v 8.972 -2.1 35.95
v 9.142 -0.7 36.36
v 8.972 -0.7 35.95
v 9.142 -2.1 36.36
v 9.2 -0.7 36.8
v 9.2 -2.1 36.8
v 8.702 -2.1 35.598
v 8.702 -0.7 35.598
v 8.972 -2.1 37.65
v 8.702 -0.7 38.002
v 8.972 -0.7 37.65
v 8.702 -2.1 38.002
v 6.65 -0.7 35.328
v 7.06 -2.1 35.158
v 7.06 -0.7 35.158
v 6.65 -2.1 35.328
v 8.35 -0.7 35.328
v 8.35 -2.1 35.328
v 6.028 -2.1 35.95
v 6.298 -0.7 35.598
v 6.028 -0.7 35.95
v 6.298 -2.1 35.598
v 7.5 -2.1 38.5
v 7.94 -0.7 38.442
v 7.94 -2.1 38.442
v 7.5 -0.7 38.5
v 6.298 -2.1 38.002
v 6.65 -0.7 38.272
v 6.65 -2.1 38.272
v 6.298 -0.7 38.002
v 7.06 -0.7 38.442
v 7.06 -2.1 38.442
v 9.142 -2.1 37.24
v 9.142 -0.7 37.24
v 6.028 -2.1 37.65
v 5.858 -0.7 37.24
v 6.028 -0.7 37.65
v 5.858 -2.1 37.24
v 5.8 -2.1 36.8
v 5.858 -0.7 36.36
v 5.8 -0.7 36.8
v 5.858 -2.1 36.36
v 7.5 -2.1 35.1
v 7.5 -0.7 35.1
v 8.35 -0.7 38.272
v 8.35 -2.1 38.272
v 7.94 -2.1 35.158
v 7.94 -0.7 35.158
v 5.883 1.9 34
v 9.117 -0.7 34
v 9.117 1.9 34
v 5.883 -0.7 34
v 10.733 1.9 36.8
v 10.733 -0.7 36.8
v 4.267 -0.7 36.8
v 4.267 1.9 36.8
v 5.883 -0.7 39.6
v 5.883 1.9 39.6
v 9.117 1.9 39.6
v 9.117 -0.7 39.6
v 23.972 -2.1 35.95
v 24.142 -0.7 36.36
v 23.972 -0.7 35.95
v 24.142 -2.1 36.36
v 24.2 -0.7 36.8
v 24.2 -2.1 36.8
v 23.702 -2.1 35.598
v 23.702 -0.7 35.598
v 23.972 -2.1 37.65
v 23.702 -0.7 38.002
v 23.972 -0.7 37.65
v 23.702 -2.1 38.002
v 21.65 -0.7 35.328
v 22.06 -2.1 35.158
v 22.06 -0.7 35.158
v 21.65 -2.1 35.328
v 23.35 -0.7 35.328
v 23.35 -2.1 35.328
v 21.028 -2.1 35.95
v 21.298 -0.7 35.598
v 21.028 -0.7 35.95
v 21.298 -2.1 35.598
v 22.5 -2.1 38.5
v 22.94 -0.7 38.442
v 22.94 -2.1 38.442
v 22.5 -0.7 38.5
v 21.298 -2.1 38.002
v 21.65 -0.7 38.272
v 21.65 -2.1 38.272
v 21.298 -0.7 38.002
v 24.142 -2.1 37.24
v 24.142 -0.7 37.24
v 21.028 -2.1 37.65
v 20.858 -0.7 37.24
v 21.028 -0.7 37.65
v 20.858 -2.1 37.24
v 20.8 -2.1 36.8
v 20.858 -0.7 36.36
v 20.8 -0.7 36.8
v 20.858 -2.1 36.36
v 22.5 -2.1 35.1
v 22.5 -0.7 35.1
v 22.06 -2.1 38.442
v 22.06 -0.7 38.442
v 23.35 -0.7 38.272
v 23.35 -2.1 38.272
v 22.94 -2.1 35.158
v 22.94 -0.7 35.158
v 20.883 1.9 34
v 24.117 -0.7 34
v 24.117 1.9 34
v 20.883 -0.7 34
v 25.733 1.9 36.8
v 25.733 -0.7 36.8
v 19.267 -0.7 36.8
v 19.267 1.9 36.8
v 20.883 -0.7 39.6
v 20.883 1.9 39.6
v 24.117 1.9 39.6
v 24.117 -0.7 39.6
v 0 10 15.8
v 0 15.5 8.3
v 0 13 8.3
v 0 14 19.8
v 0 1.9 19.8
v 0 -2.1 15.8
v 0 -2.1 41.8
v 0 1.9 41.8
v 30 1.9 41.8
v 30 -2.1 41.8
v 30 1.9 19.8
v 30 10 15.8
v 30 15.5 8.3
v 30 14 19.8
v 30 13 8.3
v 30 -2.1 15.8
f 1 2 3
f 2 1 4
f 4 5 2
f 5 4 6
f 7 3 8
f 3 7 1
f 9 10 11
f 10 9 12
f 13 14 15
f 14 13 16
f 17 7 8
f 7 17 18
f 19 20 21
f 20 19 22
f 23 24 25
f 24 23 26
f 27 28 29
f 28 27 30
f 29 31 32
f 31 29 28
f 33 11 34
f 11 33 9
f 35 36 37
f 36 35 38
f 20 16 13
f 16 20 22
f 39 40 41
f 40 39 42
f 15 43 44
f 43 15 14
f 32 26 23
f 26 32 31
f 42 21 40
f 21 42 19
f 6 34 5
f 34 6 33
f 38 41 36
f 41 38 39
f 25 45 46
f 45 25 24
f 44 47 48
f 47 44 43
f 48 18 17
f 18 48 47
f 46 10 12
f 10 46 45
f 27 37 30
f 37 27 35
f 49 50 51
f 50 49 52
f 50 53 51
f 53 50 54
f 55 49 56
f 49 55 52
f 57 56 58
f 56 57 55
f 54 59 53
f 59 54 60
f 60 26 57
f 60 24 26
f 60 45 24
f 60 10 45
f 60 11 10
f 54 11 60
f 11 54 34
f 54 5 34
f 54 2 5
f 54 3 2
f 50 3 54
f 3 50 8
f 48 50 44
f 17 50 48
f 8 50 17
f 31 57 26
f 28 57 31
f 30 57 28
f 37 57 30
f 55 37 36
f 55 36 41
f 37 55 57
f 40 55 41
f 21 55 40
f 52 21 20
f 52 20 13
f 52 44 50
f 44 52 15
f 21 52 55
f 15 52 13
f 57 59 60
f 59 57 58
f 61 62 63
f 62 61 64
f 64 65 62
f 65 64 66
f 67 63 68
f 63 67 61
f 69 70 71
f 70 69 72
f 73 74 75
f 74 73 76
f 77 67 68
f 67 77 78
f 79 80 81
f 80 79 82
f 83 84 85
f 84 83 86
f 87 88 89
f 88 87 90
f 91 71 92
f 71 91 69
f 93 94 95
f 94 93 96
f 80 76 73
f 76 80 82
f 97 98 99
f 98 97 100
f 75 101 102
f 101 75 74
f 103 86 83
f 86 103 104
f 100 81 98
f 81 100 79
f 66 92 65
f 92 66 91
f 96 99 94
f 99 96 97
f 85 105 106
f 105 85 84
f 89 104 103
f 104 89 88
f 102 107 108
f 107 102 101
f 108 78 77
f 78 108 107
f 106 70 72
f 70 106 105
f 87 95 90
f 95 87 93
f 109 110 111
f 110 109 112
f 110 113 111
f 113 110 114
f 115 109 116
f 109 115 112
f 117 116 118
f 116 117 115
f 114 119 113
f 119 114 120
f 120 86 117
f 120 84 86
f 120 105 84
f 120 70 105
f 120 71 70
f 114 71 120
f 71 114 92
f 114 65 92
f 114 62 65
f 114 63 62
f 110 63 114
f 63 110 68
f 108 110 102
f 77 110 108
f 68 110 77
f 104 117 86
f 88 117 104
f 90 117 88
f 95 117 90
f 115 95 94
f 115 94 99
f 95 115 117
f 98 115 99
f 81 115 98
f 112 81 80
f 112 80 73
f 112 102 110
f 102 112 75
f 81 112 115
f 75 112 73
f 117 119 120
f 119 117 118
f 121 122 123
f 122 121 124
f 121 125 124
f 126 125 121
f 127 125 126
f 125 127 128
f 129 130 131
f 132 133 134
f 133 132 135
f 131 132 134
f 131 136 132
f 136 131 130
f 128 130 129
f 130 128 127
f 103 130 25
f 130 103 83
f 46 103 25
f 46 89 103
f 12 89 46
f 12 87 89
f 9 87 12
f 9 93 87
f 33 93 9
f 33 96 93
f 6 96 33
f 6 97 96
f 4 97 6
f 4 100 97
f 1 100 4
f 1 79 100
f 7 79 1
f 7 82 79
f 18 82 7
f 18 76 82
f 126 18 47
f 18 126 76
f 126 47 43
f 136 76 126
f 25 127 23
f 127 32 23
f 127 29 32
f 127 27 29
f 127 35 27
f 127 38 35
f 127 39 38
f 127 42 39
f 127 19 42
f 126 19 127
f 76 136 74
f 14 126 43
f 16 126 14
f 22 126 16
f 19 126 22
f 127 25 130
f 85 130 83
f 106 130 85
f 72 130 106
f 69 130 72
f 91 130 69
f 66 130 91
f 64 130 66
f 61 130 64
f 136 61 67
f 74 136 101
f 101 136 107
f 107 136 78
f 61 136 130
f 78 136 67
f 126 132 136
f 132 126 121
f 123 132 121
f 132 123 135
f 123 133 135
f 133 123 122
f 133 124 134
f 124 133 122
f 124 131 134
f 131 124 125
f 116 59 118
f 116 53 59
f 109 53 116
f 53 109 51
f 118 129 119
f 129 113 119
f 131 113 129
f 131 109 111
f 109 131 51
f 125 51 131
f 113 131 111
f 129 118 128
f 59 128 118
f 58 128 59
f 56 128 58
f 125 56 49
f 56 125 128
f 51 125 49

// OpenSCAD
// 2026-11-03: door bottom hook. Two per door, screwed to the door's inner face near the
// bottom edge. The hook reaches over the shell's bottom 1010 frame member and drops behind
// it; the door goes on bottom first (tilted out, hooks down behind the member), then swings
// shut and the two knob latches at the top pull it in. The hook's leg bears on the member's
// back face and holds the bottom edge with the foam at its 2.1 mm compressed thickness.
// The leg's bearing face is a wedge: lead mm of extra room at its tip so it drops in easily,
// closing to the design reach where the arm sits on the member, so lowering the door onto
// the hooks draws its bottom edge in. The door's weight hangs on the arm (no gap above the
// member), which seats the wedge.
// Profile in (y, z) of the box: y = 0 is the shell's front face (frame front), z = 0 the
// shell's bottom; extruded along x. Print on its side (the profile flat on the bed), PLA,
// 4 walls, 40 %, no supports. Units mm.

t       = 5.8;           // acrylic (door, and the shell's bottom panel)
ext     = 10;            // 1010
foam    = 2.1;           // compressed seal: the door's inner face sits at y = -foam
width   = 30;            // along x
wall    = 4;
clr     = 0;             // arm rests on the member's top face (the door hangs on it)
lead    = 3;             // wedge: extra room at the leg tip
door_y  = -foam;         // door inner face
mem_top = t + ext;       // bottom frame member: z t..t+ext, y 0..ext
leg_y   = ext;           // leg bears on the member's back face (y = ext)
leg_bot = t + 2.5;       // leg stops 2.5 above the floor panel
base_z  = [mem_top + clr, mem_top + clr + 26];   // base plate on the door, above the member
screw_d = 3.4;           // M3 through the door into nut traps
screw_z = [base_z[0] + wall + 6, base_z[1] - 5];
nut_af  = 5.6; nut_h = 2.6;

module profile() {
    // base plate against the door
    translate([door_y, base_z[0]]) square([wall, base_z[1] - base_z[0]]);
    // arm over the member
    translate([door_y, base_z[0]]) square([leg_y + wall - door_y, wall]);
    // leg down behind the member, bearing face wedged: leg_y at the arm, leg_y + lead at the tip
    polygon([[leg_y, base_z[0]], [leg_y + wall, base_z[0] + wall], [leg_y + wall + lead / 2, leg_bot],
             [leg_y + lead, leg_bot]]);
}

difference() {
    rotate([90, 0, 90]) linear_extrude(width) profile();   // profile (y, z) -> box axes
    for (x = [width / 4, 3 * width / 4], z = [screw_z[1]]) {
        translate([x, door_y - 1, z]) rotate([-90, 0, 0]) cylinder(d = screw_d, h = wall + 2, $fn = 24);
        translate([x, door_y + wall - nut_h, z]) rotate([-90, 0, 0]) cylinder(d = nut_af / cos(30), h = nut_h + 1, $fn = 6);
    }
}

echo(str("hook ", width, " wide; reach ", leg_y - door_y, " at the arm, ", leg_y + lead - door_y,
         " at the tip; leg tip back face ", leg_y + wall + lead / 2, " (floor rail at 20); screws at z ", screw_z[1]));
